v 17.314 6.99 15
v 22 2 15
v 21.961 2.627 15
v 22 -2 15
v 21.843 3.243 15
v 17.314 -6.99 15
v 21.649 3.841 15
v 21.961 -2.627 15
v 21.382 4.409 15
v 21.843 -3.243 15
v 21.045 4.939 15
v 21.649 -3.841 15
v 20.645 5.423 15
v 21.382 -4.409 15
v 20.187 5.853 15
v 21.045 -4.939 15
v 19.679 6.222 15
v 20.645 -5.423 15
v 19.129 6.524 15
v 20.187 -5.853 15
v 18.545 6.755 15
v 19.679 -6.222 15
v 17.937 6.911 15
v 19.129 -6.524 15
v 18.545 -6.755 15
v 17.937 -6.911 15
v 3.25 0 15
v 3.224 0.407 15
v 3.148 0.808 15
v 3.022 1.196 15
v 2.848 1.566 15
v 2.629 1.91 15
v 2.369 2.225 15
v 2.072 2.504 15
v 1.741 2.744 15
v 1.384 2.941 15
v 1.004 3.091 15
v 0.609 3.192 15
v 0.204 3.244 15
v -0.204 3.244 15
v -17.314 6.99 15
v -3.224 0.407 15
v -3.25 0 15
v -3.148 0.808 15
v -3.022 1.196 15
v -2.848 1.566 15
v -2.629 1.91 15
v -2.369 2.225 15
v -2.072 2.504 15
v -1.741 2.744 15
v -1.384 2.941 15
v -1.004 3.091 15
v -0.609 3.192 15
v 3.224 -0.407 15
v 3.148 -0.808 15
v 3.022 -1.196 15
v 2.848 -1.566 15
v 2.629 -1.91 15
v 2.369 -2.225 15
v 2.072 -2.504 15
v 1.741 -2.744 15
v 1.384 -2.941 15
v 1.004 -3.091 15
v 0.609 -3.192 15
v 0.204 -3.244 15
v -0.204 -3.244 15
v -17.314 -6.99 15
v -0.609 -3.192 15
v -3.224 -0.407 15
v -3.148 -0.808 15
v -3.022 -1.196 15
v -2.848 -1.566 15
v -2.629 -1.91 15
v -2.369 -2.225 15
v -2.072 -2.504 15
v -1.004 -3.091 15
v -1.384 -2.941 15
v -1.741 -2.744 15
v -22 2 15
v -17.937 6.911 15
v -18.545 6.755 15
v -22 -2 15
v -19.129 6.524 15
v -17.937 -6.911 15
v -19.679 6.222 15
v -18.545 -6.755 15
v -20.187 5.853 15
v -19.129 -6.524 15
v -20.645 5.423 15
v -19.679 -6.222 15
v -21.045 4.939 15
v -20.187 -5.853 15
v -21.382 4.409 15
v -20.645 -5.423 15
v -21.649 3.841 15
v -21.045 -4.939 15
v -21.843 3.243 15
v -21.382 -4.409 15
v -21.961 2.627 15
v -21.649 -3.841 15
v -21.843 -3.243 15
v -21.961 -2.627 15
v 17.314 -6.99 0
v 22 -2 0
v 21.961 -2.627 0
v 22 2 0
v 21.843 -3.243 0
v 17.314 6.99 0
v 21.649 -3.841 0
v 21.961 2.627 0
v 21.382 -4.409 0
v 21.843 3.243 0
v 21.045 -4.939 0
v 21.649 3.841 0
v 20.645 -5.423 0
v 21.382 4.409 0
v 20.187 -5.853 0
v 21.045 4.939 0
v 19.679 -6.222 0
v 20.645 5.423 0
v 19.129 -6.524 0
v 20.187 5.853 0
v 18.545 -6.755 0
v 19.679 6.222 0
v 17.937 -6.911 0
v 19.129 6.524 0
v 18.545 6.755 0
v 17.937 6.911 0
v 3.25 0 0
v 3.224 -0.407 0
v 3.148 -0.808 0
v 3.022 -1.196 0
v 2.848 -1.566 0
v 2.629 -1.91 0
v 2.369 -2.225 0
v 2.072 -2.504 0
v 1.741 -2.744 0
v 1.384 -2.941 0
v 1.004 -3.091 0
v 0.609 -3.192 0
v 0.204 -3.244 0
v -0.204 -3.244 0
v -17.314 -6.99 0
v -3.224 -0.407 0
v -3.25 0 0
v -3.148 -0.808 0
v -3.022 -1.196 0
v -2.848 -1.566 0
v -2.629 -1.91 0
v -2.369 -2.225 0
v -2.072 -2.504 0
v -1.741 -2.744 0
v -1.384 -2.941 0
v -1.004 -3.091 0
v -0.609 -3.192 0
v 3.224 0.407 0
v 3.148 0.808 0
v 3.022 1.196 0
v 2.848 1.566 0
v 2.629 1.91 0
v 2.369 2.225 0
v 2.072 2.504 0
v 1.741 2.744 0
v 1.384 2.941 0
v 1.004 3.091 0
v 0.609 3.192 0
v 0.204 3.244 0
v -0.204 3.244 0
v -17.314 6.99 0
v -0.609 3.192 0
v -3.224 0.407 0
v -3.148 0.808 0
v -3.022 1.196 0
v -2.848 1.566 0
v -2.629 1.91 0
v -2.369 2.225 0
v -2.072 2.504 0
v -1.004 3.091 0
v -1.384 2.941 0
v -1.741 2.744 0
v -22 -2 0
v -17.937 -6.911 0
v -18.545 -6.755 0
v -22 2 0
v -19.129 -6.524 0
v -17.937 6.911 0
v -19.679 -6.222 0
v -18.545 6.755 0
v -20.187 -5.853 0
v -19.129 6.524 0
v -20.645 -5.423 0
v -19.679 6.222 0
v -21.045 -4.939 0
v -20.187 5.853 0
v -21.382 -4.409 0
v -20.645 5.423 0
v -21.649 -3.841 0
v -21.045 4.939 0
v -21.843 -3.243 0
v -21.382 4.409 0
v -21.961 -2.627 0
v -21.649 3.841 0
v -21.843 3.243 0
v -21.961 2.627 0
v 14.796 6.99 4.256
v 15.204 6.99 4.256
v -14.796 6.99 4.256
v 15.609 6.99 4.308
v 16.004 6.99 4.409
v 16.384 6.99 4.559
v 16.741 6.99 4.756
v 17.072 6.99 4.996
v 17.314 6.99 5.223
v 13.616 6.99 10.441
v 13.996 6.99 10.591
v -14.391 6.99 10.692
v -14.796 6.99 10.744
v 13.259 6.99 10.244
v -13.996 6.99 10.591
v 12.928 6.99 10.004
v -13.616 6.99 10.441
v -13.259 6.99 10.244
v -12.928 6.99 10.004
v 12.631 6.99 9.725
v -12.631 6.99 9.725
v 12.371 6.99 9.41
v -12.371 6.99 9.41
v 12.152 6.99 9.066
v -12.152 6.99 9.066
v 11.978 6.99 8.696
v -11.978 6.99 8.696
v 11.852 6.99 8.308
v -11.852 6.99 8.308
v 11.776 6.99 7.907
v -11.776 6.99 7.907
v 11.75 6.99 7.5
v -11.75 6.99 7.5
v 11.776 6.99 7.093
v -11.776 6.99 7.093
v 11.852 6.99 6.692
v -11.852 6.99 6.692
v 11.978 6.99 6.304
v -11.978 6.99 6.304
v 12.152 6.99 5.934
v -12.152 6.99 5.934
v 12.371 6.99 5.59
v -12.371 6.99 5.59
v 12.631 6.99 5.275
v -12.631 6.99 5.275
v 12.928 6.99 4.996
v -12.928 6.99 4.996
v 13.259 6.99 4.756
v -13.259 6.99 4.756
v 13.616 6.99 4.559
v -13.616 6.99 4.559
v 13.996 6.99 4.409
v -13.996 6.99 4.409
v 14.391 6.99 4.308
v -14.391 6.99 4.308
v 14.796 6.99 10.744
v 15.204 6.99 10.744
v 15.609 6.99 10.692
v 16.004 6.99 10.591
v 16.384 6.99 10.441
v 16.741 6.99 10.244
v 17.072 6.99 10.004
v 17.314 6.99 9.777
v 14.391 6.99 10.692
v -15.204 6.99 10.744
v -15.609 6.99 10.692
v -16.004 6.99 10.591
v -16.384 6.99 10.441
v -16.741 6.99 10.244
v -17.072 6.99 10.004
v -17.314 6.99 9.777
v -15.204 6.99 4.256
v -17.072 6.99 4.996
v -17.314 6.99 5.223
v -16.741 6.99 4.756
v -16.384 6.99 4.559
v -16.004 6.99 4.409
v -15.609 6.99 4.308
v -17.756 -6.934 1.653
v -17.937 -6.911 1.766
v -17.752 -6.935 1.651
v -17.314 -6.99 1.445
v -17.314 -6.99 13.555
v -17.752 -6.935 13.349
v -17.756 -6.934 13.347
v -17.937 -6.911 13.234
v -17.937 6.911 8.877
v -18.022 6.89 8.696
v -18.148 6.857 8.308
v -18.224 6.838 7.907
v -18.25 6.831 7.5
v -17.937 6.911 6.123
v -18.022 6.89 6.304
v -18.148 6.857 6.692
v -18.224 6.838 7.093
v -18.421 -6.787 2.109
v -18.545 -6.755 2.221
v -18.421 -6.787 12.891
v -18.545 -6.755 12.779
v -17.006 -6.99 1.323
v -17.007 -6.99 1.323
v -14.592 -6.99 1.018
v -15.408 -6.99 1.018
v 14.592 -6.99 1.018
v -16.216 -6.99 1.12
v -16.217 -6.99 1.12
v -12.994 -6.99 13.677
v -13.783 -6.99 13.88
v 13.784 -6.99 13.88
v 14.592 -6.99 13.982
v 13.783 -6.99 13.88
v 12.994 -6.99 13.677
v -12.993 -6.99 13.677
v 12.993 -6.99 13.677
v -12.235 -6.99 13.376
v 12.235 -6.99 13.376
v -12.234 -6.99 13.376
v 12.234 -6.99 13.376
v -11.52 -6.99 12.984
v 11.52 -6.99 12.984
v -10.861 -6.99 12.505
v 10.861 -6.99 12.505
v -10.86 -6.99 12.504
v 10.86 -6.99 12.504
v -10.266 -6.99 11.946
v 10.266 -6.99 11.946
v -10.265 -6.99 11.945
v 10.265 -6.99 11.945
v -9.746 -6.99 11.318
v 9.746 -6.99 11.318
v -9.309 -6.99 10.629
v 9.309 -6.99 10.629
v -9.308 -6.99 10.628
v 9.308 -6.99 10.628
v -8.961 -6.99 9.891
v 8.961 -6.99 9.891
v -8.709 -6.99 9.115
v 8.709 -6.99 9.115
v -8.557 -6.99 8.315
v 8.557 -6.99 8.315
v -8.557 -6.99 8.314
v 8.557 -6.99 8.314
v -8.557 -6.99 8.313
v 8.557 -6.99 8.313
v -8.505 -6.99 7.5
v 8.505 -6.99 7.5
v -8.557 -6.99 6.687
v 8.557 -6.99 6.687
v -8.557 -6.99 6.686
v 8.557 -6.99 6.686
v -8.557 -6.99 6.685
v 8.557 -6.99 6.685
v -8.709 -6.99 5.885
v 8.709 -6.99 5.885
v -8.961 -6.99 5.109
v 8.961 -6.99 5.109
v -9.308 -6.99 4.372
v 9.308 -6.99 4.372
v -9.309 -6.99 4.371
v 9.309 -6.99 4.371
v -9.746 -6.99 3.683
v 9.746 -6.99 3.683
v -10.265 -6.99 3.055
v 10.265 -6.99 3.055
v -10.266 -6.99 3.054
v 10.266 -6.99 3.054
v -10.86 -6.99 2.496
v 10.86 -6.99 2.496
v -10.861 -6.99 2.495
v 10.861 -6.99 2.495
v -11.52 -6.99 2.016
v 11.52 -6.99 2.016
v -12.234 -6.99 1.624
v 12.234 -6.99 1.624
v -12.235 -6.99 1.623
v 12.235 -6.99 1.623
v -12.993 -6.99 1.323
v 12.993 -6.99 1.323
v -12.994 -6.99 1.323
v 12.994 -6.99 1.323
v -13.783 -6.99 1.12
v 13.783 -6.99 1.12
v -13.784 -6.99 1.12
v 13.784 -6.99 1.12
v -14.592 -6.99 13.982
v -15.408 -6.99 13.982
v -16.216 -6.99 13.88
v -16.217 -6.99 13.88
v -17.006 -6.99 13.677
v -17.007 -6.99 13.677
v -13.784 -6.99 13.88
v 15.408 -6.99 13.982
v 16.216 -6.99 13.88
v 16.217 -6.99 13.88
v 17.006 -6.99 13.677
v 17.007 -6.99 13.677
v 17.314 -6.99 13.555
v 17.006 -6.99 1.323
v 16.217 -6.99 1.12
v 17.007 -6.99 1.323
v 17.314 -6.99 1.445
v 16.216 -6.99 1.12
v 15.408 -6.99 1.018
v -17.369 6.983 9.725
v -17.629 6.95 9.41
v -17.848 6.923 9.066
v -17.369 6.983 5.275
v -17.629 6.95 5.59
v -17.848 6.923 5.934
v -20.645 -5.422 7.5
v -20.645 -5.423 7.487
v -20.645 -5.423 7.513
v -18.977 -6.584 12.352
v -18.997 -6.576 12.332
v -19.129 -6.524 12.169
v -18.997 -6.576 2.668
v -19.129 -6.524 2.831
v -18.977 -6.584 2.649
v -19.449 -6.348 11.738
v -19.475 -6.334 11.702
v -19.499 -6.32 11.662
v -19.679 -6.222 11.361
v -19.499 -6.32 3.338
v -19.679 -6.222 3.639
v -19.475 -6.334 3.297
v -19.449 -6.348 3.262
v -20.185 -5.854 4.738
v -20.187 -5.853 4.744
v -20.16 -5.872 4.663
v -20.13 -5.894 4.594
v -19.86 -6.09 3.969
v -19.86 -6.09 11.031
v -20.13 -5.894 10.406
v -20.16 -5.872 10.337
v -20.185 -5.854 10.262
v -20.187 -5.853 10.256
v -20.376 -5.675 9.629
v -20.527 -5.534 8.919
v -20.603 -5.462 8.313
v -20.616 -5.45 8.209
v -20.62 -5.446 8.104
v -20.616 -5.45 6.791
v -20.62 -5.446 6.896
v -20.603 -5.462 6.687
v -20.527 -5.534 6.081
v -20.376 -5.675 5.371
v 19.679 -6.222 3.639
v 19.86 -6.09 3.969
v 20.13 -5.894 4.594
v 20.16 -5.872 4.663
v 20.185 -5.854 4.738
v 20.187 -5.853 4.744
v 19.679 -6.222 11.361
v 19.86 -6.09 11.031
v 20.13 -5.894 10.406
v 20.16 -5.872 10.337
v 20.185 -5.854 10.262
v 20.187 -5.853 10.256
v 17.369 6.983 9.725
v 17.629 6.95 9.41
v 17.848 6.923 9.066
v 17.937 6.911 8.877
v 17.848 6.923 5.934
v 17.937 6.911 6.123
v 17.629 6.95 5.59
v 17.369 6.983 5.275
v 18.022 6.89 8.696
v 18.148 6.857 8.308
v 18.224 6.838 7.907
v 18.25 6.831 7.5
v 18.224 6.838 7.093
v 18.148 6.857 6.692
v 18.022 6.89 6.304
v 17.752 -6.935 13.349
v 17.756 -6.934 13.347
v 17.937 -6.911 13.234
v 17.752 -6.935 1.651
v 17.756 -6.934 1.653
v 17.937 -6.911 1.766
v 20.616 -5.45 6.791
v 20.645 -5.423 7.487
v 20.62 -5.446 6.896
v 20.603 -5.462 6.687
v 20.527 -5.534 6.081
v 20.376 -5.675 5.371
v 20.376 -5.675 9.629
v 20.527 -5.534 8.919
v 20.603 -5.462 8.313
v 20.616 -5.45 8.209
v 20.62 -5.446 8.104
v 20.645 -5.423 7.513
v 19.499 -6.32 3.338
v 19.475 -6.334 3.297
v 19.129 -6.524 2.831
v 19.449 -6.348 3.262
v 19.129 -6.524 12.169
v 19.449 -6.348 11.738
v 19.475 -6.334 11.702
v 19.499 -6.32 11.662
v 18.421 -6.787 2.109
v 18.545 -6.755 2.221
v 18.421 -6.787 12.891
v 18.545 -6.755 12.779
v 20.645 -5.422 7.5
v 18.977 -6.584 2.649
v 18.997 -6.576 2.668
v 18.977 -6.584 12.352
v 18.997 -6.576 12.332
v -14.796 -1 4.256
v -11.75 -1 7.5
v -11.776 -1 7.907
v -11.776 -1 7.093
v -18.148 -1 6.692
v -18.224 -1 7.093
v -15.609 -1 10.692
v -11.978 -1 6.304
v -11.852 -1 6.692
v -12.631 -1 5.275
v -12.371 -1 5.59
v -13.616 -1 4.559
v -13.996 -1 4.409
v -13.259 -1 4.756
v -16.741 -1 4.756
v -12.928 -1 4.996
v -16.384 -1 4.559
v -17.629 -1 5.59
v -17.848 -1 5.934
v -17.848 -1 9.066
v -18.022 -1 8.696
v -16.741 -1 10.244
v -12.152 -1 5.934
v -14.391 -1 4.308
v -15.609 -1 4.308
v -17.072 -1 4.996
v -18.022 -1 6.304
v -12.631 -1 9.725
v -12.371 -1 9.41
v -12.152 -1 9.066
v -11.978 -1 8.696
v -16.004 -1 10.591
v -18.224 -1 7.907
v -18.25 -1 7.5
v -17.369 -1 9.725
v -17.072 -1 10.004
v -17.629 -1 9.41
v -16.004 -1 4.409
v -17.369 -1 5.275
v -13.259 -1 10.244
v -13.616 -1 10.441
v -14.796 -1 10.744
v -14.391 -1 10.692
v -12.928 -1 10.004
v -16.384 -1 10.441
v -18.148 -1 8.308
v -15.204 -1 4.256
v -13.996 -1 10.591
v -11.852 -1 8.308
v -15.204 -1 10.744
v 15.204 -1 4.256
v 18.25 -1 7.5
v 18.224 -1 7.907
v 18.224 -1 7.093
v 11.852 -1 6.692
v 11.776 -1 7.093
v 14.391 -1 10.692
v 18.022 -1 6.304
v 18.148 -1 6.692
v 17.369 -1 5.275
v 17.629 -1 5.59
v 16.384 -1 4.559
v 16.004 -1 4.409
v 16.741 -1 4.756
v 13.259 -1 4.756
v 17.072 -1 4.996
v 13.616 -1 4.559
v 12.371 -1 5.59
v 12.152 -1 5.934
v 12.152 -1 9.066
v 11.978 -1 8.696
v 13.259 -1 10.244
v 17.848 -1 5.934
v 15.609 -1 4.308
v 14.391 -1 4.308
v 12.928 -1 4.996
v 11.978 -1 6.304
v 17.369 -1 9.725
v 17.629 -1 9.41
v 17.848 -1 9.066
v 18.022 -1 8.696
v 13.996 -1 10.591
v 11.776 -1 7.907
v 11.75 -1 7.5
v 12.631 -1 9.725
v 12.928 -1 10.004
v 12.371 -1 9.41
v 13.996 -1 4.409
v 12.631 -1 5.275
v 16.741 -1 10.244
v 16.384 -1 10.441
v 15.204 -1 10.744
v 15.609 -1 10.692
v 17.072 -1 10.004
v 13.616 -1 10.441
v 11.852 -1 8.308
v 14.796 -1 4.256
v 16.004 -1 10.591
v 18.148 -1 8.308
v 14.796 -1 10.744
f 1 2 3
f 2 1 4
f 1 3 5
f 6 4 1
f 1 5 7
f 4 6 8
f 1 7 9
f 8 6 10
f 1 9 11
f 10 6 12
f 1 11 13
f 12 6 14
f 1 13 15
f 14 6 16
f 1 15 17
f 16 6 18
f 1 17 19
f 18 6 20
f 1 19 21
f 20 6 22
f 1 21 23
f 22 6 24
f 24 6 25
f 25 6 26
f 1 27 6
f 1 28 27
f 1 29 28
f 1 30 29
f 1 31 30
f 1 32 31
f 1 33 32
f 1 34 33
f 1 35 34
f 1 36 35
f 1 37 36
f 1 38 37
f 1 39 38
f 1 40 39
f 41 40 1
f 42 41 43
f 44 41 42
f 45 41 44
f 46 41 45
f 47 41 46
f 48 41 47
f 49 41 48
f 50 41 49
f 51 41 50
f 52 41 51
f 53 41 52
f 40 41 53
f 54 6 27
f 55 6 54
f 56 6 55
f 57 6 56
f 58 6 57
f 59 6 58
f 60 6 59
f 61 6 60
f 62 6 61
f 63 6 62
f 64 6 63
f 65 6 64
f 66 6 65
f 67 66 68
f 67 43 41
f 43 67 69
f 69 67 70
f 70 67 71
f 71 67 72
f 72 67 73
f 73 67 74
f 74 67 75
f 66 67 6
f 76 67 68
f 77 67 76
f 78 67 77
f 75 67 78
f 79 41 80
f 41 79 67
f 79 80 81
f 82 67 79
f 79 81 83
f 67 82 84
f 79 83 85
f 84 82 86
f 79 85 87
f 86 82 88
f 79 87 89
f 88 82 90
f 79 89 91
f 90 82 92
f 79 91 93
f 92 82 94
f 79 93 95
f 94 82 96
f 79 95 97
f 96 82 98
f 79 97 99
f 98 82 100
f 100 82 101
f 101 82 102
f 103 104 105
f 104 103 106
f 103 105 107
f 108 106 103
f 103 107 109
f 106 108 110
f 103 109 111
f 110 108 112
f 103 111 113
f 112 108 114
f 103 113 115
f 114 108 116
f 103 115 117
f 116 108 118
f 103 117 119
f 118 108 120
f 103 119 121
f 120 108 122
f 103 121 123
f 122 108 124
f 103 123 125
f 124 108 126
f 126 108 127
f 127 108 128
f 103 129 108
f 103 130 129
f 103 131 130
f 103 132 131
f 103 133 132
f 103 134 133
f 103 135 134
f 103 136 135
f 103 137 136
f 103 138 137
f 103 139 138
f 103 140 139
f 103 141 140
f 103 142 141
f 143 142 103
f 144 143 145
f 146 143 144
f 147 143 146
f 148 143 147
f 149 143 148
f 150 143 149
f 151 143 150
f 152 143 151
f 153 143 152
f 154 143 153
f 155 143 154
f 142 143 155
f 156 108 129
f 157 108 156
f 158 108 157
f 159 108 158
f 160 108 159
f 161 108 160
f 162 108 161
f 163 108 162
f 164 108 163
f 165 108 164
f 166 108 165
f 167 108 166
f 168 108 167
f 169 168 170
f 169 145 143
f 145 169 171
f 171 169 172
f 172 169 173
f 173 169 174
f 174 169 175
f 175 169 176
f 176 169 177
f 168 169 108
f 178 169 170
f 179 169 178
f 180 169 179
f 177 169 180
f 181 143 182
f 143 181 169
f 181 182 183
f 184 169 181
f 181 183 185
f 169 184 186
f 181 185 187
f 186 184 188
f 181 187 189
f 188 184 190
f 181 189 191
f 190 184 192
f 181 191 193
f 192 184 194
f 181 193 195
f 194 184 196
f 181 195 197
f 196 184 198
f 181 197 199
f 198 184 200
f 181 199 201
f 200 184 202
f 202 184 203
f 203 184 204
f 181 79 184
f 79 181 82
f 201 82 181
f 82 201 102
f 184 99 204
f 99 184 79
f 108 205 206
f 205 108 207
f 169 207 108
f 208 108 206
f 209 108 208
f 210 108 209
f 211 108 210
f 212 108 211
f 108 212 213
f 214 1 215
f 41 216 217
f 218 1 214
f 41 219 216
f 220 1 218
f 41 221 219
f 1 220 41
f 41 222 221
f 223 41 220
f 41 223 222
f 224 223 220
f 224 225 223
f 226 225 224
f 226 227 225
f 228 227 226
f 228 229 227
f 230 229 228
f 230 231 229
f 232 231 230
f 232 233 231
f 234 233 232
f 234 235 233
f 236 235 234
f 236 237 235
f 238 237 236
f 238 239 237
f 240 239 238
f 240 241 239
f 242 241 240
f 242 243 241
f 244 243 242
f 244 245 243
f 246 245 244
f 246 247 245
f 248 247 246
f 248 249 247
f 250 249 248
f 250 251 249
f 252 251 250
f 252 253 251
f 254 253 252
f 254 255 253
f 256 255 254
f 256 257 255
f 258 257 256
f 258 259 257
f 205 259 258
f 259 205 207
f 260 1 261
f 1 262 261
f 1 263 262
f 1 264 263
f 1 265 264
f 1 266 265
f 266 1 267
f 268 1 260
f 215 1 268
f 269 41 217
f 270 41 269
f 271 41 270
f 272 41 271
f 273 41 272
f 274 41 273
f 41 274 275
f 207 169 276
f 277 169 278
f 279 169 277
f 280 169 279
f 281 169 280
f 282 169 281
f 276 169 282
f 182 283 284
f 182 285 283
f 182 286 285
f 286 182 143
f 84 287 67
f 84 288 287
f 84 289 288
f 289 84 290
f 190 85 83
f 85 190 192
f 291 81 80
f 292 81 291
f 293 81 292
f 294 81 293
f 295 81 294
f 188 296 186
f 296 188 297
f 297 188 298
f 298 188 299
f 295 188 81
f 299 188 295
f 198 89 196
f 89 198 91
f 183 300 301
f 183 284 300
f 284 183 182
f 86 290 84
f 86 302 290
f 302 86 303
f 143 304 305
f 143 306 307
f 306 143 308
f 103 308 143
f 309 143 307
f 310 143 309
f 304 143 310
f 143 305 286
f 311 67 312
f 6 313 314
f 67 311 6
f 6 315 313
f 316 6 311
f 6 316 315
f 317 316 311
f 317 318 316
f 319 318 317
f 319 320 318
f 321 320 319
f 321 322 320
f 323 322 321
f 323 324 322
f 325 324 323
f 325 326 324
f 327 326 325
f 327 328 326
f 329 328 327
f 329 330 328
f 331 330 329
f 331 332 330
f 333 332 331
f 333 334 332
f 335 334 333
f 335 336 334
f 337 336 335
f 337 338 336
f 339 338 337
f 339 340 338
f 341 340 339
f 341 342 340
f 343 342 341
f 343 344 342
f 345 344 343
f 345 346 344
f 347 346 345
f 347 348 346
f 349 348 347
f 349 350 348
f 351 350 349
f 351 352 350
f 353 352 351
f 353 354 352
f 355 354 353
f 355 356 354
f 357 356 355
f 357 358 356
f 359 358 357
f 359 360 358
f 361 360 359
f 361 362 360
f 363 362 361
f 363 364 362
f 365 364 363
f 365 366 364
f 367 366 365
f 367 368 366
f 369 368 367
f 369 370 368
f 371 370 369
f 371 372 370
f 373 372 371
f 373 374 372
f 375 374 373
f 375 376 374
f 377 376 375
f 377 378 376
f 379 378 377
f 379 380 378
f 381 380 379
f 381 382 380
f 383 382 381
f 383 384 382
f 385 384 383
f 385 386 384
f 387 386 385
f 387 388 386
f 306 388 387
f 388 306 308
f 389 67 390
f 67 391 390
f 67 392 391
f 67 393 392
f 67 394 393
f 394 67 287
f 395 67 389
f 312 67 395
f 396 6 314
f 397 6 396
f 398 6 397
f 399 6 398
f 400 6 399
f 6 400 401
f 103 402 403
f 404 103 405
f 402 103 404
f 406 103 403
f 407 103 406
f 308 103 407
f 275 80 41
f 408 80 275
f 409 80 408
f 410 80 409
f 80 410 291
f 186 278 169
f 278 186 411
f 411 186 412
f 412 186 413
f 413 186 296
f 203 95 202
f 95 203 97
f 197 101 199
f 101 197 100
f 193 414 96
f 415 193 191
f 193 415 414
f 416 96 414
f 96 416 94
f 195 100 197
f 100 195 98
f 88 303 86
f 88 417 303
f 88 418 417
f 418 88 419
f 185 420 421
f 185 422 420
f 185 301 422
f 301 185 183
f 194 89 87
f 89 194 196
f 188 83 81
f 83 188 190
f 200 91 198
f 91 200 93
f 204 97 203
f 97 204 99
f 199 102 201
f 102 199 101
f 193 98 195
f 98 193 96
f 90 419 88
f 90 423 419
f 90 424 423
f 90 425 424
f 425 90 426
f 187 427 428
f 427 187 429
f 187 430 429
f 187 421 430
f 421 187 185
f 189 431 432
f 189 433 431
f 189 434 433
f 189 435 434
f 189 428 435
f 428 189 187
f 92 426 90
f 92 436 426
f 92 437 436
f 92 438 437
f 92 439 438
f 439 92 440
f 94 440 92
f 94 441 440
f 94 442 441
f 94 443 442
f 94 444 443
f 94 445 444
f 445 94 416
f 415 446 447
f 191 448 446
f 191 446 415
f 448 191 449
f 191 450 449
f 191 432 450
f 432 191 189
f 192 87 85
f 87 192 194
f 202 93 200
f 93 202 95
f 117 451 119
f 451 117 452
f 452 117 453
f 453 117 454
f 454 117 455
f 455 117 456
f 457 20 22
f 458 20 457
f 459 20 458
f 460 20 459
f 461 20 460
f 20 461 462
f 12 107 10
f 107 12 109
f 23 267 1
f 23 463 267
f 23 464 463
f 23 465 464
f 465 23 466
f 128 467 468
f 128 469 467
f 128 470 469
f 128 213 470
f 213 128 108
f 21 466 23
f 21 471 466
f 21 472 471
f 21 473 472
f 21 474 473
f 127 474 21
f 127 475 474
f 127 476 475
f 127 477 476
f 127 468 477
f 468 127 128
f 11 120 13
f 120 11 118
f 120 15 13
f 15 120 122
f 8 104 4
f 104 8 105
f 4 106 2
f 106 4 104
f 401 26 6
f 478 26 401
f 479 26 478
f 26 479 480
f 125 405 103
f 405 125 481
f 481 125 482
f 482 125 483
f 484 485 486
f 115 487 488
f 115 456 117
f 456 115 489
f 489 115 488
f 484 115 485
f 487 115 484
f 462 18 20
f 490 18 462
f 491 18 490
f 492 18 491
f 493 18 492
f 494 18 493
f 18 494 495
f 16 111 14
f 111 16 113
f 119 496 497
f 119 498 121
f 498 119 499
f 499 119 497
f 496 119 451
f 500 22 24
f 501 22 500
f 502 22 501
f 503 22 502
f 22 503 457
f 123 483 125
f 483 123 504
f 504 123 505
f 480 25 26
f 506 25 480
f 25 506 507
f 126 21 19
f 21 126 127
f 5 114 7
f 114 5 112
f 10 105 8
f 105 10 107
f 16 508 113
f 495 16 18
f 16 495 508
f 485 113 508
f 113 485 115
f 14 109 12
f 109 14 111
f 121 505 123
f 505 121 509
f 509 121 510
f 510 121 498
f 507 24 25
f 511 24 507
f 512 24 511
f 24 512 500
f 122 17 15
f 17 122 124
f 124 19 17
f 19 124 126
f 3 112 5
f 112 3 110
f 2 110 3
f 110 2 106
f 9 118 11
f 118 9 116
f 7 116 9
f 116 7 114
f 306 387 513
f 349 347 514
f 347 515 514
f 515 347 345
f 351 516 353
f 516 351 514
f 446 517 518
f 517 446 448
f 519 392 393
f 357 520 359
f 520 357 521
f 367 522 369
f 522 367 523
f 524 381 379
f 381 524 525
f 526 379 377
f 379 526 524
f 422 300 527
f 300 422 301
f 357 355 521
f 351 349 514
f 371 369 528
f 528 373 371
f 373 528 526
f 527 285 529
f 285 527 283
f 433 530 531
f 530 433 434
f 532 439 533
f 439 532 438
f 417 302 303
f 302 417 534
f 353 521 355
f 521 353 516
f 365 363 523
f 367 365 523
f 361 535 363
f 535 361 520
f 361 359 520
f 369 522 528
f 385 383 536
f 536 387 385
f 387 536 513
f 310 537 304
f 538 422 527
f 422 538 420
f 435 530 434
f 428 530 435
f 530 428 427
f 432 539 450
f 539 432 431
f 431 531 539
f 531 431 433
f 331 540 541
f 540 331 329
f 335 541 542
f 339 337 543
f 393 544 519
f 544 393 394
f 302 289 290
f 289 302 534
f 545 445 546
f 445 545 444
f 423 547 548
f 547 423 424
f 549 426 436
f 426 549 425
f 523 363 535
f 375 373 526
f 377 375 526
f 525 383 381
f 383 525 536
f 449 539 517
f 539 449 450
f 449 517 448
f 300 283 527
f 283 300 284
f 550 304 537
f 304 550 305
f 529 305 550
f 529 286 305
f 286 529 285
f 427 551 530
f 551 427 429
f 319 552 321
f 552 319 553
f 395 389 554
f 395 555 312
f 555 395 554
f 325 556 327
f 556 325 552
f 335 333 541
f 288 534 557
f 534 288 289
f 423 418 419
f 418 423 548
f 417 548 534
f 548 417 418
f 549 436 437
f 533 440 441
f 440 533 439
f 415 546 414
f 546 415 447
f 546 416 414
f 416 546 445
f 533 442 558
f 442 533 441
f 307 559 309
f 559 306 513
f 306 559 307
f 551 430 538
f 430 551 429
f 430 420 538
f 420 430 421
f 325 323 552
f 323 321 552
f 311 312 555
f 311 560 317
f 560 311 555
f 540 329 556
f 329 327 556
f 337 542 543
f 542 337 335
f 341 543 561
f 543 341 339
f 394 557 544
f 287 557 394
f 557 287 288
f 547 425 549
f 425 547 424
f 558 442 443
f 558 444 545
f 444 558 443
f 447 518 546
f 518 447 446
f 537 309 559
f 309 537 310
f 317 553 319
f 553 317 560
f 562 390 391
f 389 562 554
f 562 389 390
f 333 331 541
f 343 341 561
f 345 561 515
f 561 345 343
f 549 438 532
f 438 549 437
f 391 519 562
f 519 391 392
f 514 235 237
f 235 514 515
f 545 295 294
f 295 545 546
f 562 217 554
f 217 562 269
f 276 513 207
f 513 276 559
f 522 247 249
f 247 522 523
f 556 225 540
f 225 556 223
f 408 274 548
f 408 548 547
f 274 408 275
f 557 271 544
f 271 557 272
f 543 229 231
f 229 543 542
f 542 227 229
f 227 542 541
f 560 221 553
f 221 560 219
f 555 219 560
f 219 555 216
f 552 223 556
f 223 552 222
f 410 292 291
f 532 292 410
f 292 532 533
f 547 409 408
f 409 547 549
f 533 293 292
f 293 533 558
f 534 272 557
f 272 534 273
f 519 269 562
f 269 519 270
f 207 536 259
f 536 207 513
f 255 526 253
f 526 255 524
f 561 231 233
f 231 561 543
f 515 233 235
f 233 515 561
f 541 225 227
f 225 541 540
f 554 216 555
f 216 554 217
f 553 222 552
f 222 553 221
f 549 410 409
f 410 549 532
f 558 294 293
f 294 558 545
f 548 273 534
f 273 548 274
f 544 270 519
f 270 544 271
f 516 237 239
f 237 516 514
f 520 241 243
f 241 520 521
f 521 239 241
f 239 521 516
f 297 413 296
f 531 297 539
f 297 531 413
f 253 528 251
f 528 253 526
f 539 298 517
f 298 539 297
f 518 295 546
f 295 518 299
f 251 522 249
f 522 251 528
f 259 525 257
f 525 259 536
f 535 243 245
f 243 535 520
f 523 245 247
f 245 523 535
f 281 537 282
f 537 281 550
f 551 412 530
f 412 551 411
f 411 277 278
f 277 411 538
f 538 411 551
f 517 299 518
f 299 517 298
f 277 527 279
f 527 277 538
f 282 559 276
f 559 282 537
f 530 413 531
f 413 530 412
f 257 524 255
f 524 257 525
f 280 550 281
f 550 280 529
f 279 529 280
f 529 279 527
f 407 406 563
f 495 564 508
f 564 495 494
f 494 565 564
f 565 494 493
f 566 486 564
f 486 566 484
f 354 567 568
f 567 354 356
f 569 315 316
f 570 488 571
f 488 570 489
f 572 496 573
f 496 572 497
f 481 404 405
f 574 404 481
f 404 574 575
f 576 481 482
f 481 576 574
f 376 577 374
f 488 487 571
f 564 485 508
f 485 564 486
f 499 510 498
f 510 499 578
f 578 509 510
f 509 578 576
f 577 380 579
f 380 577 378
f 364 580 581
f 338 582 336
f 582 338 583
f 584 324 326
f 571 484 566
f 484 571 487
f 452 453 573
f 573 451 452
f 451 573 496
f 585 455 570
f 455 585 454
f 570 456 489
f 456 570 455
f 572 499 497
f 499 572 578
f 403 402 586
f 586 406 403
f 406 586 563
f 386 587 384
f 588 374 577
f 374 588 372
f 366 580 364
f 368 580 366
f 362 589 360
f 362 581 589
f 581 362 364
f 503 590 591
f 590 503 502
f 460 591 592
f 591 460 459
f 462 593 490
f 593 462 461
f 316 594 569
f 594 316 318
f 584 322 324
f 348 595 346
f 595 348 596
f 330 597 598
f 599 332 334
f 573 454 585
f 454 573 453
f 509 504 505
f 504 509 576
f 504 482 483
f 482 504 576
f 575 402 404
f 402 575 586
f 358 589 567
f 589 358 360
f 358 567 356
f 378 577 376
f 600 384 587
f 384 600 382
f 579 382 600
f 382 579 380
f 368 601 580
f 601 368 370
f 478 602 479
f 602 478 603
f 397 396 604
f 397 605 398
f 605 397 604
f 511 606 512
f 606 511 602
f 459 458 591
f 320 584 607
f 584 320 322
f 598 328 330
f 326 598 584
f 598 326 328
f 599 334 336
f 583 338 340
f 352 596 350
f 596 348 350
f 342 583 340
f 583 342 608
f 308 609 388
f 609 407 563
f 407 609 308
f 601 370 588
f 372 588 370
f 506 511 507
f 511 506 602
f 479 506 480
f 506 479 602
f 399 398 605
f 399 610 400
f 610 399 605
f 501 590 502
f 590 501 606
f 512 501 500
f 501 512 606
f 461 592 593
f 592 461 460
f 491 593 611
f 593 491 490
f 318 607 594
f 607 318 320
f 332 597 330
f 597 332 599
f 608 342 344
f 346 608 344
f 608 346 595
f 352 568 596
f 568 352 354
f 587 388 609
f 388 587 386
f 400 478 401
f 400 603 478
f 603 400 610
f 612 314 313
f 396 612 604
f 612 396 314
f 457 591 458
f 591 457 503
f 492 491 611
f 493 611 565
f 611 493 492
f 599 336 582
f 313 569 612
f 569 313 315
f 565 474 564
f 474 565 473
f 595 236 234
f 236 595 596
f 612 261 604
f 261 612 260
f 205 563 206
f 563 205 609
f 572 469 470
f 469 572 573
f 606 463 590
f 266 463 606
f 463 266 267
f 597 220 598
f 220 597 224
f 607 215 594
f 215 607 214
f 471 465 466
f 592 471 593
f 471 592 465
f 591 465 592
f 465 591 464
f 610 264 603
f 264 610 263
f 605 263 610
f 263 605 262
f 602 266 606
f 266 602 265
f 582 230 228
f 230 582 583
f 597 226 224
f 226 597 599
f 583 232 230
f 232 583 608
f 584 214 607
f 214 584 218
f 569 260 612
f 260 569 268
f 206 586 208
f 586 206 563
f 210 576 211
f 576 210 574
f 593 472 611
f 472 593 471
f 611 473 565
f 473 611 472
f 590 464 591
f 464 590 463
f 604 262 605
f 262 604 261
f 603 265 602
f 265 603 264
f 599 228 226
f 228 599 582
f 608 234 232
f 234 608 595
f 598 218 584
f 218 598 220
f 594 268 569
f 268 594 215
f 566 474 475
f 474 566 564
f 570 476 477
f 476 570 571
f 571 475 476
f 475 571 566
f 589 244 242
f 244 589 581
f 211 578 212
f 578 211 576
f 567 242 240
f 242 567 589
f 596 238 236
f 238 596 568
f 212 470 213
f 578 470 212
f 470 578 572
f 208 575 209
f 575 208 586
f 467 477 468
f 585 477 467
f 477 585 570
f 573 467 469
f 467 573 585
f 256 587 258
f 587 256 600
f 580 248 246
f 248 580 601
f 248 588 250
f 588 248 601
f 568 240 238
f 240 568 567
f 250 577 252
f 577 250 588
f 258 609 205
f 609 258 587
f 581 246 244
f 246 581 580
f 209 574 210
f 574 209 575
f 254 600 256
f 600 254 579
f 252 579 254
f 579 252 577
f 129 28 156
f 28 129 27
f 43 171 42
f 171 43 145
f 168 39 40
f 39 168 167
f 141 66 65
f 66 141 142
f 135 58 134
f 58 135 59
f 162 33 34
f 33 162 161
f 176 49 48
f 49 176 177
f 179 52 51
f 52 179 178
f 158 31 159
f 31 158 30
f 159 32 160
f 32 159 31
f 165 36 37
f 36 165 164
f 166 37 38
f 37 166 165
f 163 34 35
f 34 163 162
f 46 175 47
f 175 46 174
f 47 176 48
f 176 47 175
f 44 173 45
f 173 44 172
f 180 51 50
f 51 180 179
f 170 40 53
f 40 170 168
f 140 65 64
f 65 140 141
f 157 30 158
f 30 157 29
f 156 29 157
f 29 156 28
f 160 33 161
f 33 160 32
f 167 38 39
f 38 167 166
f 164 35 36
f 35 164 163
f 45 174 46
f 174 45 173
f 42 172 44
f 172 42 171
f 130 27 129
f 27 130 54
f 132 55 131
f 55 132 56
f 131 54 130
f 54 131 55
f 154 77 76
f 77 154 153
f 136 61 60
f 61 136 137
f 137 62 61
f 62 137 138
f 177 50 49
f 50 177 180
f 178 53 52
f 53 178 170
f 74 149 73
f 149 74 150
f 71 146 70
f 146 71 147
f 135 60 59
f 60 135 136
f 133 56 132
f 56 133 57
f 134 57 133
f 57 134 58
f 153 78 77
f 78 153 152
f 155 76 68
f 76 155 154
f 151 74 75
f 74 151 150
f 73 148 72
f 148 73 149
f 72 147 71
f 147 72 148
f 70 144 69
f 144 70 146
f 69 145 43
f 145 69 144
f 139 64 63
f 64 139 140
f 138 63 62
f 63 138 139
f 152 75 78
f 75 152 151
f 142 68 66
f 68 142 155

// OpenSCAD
$fn = 50;


difference() {
	union() {
		cylinder(h = 15, r = 7.0000000000);
		translate(v = [-7.5000000000, 0.0000000000, 0]) {
			hull() {
				translate(v = [-9.5000000000, 2.0000000000, 0]) {
					cylinder(h = 15, r = 5);
				}
				translate(v = [9.5000000000, 2.0000000000, 0]) {
					cylinder(h = 15, r = 5);
				}
				translate(v = [-9.5000000000, -2.0000000000, 0]) {
					cylinder(h = 15, r = 5);
				}
				translate(v = [9.5000000000, -2.0000000000, 0]) {
					cylinder(h = 15, r = 5);
				}
			}
		}
		translate(v = [7.5000000000, 0.0000000000, 0]) {
			hull() {
				translate(v = [-9.5000000000, 2.0000000000, 0]) {
					cylinder(h = 15, r = 5);
				}
				translate(v = [9.5000000000, 2.0000000000, 0]) {
					cylinder(h = 15, r = 5);
				}
				translate(v = [-9.5000000000, -2.0000000000, 0]) {
					cylinder(h = 15, r = 5);
				}
				translate(v = [9.5000000000, -2.0000000000, 0]) {
					cylinder(h = 15, r = 5);
				}
			}
		}
	}
	union() {
		translate(v = [-15.0000000000, -7.0000000000, 7.5000000000]) {
			rotate(a = [90, 0, 0]) {
				difference() {
					union() {
						#translate(v = [0, 0, -14.0000000000]) {
							cylinder(h = 14, r = 2.2500000000);
						}
						#translate(v = [0, 0, -6]) {
							cylinder(h = 6, r1 = 3.2500000000, r2 = 6.5000000000);
						}
						#translate(v = [0, 0, -14.0000000000]) {
							cylinder(h = 14, r = 3.2500000000);
						}
						#translate(v = [0, 0, -14.0000000000]) {
							cylinder(h = 14, r = 2.2500000000);
						}
					}
					union();
				}
			}
		}
		translate(v = [15.0000000000, -7.0000000000, 7.5000000000]) {
			rotate(a = [90, 0, 0]) {
				difference() {
					union() {
						#translate(v = [0, 0, -14.0000000000]) {
							cylinder(h = 14, r = 2.2500000000);
						}
						#translate(v = [0, 0, -6]) {
							cylinder(h = 6, r1 = 3.2500000000, r2 = 6.5000000000);
						}
						#translate(v = [0, 0, -14.0000000000]) {
							cylinder(h = 14, r = 3.2500000000);
						}
						#translate(v = [0, 0, -14.0000000000]) {
							cylinder(h = 14, r = 2.2500000000);
						}
					}
					union();
				}
			}
		}
		translate(v = [0, 0, -100]) {
			cylinder(h = 200, r = 3.2500000000);
		}
		translate(v = [0, 0, -100]) {
			cylinder(h = 200, r = 1.8000000000);
		}
	}
}
